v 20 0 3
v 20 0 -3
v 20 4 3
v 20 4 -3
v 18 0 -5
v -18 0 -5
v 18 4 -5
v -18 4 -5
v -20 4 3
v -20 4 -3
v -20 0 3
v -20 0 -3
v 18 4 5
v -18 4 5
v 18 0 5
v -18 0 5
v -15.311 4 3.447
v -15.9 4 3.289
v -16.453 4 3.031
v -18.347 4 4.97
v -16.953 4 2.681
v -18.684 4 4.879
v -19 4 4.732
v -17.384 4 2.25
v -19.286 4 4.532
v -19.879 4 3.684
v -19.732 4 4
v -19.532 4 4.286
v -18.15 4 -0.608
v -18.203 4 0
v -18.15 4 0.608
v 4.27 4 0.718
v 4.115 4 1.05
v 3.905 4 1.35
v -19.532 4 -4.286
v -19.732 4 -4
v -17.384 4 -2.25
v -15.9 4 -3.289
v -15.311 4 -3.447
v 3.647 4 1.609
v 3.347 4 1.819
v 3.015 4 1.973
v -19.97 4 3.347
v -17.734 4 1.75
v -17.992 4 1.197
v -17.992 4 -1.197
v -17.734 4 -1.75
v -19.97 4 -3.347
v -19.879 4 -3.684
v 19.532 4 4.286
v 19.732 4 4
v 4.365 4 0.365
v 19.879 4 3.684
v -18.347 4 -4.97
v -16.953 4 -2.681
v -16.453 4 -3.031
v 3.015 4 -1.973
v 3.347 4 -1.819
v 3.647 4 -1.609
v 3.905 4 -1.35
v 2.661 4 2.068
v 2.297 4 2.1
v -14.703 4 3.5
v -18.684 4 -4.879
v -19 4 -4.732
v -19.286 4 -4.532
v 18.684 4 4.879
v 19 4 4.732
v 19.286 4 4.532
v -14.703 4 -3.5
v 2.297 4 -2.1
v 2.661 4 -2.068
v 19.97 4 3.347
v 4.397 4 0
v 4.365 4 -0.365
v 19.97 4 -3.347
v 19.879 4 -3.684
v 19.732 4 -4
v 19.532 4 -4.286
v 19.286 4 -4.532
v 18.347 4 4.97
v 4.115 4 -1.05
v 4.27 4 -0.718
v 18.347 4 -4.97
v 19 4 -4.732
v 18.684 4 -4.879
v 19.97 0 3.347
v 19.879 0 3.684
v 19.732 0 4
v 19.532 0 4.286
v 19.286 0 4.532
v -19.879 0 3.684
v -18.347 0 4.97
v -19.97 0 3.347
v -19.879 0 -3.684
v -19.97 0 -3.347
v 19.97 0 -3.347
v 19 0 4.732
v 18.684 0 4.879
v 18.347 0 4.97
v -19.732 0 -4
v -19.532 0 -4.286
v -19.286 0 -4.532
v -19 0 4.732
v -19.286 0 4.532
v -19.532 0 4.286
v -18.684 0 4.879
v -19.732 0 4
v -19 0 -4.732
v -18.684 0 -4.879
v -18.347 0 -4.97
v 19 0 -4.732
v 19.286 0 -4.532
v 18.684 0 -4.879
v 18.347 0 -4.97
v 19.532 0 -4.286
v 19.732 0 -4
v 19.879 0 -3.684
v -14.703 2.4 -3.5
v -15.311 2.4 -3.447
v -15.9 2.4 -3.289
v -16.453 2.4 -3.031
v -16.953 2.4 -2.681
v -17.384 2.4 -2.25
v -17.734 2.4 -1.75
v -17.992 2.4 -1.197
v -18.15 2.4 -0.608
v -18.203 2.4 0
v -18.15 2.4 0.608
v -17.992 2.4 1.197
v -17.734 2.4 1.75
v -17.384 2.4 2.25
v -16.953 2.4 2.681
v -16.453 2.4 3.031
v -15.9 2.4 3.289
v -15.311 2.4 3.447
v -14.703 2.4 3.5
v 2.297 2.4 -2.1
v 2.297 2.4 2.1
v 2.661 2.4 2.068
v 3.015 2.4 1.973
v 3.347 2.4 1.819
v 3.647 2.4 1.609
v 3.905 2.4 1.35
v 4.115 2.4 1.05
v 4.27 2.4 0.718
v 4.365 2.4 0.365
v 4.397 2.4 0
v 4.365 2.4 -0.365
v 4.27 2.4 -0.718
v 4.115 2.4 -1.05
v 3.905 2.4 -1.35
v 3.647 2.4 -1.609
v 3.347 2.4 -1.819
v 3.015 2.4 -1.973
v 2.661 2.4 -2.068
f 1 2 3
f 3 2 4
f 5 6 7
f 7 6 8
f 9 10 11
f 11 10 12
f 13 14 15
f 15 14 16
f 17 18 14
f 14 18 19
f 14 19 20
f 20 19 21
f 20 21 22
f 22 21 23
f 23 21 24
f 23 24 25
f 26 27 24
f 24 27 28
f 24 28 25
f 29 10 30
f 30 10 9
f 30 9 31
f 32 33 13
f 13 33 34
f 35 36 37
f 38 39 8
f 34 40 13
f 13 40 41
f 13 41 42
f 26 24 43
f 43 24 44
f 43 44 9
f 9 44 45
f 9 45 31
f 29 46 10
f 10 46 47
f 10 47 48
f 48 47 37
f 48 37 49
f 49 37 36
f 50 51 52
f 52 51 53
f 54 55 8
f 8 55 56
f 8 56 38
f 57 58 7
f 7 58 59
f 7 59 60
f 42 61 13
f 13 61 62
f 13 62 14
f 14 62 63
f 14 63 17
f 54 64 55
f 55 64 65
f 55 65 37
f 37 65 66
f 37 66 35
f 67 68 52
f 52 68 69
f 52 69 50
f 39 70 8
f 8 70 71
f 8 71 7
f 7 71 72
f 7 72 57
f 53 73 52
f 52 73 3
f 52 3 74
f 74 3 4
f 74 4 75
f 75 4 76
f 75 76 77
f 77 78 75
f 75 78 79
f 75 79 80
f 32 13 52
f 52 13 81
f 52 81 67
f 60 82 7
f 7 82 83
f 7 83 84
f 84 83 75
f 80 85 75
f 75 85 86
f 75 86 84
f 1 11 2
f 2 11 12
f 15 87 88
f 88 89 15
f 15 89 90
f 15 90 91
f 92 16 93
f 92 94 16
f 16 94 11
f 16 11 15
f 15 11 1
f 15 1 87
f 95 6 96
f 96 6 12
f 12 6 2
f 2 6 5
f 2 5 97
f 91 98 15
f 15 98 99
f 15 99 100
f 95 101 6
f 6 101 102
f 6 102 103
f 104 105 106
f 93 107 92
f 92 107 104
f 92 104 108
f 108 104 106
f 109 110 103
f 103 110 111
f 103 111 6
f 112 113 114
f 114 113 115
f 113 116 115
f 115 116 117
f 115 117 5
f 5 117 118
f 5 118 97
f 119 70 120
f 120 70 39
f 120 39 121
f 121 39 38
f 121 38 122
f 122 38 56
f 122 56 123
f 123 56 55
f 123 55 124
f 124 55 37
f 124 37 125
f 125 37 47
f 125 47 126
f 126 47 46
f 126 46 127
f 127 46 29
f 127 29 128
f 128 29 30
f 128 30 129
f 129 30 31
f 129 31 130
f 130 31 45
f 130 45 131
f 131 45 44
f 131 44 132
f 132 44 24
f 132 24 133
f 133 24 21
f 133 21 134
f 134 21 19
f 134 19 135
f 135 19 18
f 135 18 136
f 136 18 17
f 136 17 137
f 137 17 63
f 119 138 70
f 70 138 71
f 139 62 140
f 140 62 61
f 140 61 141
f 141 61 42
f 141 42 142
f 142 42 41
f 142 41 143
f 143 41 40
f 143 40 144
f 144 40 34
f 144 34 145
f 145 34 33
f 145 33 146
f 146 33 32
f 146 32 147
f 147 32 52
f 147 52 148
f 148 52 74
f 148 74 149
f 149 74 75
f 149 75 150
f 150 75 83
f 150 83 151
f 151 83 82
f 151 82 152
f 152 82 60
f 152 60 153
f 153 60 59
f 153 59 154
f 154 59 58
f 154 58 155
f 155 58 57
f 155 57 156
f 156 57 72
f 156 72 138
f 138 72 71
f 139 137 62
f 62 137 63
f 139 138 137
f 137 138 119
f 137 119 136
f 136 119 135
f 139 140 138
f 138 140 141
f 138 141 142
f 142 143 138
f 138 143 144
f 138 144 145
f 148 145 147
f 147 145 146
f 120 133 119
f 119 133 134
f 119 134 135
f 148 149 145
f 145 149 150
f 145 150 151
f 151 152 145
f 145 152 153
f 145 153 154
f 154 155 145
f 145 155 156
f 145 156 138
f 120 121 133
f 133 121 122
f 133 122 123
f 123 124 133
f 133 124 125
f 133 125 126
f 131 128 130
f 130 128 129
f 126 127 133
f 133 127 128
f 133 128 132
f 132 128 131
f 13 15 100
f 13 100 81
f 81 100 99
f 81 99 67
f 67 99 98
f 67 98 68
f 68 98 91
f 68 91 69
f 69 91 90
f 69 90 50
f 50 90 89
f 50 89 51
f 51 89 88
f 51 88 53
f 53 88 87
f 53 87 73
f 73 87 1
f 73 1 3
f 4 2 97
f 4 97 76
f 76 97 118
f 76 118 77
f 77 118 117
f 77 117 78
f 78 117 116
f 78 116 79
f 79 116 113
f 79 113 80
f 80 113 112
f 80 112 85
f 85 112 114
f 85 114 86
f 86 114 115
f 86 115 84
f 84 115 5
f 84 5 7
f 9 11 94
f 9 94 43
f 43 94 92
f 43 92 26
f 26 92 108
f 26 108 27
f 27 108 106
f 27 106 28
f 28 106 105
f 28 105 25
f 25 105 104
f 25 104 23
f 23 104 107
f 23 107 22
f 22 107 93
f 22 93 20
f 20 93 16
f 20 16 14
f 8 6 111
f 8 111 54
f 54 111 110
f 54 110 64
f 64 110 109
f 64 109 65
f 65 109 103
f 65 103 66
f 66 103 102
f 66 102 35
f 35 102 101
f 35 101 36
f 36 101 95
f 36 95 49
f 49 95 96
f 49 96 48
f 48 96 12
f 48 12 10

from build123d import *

# Parameters (mm, degrees)
SKETCH_1_W          = 40
SKETCH_1_H          = 10
EXTRUDE_1_DEPTH     = 4
CUT_EXTRUDE_1_DEPTH = 1.6
FILLET_1_R          = 2


with BuildPart() as part:
    # 스케치1 → 보스-돌출1 (new body)
    with BuildSketch(Plane(origin=(0, 0, 0), x_dir=(1, 0, 0), z_dir=(0, 1, 0))):
        Rectangle(SKETCH_1_W, SKETCH_1_H)
    extrude(amount=EXTRUDE_1_DEPTH)

    # 스케치2 → 컷-돌출1 (cut)
    with BuildSketch(Plane(origin=(0, 4, 0), x_dir=(1, 0, 0), z_dir=(0, 1, 0))):
        with BuildLine():
            Line((-14.703333421, -3.5), (2.296666579, -2.1))
            ThreePointArc((2.296666579, -2.1), (4.396666579, 0), (2.296666579, 2.1))
            Line((2.296666579, 2.1), (-14.703333421, 3.5))
            ThreePointArc((-14.703333421, 3.5), (-18.203333421, 0), (-14.703333421, -3.5))
        make_face()
    extrude(amount=-CUT_EXTRUDE_1_DEPTH, mode=Mode.SUBTRACT)

    # 필렛1
    fillet_1_edges = [part.edges().sort_by_distance(p)[0] for p in [
        (20, 2, 5),
        (-20, 2, 5),
        (-20, 2, -5),
        (20, 2, -5),
    ]]
    fillet(fillet_1_edges, radius=FILLET_1_R)


solid = part.part
